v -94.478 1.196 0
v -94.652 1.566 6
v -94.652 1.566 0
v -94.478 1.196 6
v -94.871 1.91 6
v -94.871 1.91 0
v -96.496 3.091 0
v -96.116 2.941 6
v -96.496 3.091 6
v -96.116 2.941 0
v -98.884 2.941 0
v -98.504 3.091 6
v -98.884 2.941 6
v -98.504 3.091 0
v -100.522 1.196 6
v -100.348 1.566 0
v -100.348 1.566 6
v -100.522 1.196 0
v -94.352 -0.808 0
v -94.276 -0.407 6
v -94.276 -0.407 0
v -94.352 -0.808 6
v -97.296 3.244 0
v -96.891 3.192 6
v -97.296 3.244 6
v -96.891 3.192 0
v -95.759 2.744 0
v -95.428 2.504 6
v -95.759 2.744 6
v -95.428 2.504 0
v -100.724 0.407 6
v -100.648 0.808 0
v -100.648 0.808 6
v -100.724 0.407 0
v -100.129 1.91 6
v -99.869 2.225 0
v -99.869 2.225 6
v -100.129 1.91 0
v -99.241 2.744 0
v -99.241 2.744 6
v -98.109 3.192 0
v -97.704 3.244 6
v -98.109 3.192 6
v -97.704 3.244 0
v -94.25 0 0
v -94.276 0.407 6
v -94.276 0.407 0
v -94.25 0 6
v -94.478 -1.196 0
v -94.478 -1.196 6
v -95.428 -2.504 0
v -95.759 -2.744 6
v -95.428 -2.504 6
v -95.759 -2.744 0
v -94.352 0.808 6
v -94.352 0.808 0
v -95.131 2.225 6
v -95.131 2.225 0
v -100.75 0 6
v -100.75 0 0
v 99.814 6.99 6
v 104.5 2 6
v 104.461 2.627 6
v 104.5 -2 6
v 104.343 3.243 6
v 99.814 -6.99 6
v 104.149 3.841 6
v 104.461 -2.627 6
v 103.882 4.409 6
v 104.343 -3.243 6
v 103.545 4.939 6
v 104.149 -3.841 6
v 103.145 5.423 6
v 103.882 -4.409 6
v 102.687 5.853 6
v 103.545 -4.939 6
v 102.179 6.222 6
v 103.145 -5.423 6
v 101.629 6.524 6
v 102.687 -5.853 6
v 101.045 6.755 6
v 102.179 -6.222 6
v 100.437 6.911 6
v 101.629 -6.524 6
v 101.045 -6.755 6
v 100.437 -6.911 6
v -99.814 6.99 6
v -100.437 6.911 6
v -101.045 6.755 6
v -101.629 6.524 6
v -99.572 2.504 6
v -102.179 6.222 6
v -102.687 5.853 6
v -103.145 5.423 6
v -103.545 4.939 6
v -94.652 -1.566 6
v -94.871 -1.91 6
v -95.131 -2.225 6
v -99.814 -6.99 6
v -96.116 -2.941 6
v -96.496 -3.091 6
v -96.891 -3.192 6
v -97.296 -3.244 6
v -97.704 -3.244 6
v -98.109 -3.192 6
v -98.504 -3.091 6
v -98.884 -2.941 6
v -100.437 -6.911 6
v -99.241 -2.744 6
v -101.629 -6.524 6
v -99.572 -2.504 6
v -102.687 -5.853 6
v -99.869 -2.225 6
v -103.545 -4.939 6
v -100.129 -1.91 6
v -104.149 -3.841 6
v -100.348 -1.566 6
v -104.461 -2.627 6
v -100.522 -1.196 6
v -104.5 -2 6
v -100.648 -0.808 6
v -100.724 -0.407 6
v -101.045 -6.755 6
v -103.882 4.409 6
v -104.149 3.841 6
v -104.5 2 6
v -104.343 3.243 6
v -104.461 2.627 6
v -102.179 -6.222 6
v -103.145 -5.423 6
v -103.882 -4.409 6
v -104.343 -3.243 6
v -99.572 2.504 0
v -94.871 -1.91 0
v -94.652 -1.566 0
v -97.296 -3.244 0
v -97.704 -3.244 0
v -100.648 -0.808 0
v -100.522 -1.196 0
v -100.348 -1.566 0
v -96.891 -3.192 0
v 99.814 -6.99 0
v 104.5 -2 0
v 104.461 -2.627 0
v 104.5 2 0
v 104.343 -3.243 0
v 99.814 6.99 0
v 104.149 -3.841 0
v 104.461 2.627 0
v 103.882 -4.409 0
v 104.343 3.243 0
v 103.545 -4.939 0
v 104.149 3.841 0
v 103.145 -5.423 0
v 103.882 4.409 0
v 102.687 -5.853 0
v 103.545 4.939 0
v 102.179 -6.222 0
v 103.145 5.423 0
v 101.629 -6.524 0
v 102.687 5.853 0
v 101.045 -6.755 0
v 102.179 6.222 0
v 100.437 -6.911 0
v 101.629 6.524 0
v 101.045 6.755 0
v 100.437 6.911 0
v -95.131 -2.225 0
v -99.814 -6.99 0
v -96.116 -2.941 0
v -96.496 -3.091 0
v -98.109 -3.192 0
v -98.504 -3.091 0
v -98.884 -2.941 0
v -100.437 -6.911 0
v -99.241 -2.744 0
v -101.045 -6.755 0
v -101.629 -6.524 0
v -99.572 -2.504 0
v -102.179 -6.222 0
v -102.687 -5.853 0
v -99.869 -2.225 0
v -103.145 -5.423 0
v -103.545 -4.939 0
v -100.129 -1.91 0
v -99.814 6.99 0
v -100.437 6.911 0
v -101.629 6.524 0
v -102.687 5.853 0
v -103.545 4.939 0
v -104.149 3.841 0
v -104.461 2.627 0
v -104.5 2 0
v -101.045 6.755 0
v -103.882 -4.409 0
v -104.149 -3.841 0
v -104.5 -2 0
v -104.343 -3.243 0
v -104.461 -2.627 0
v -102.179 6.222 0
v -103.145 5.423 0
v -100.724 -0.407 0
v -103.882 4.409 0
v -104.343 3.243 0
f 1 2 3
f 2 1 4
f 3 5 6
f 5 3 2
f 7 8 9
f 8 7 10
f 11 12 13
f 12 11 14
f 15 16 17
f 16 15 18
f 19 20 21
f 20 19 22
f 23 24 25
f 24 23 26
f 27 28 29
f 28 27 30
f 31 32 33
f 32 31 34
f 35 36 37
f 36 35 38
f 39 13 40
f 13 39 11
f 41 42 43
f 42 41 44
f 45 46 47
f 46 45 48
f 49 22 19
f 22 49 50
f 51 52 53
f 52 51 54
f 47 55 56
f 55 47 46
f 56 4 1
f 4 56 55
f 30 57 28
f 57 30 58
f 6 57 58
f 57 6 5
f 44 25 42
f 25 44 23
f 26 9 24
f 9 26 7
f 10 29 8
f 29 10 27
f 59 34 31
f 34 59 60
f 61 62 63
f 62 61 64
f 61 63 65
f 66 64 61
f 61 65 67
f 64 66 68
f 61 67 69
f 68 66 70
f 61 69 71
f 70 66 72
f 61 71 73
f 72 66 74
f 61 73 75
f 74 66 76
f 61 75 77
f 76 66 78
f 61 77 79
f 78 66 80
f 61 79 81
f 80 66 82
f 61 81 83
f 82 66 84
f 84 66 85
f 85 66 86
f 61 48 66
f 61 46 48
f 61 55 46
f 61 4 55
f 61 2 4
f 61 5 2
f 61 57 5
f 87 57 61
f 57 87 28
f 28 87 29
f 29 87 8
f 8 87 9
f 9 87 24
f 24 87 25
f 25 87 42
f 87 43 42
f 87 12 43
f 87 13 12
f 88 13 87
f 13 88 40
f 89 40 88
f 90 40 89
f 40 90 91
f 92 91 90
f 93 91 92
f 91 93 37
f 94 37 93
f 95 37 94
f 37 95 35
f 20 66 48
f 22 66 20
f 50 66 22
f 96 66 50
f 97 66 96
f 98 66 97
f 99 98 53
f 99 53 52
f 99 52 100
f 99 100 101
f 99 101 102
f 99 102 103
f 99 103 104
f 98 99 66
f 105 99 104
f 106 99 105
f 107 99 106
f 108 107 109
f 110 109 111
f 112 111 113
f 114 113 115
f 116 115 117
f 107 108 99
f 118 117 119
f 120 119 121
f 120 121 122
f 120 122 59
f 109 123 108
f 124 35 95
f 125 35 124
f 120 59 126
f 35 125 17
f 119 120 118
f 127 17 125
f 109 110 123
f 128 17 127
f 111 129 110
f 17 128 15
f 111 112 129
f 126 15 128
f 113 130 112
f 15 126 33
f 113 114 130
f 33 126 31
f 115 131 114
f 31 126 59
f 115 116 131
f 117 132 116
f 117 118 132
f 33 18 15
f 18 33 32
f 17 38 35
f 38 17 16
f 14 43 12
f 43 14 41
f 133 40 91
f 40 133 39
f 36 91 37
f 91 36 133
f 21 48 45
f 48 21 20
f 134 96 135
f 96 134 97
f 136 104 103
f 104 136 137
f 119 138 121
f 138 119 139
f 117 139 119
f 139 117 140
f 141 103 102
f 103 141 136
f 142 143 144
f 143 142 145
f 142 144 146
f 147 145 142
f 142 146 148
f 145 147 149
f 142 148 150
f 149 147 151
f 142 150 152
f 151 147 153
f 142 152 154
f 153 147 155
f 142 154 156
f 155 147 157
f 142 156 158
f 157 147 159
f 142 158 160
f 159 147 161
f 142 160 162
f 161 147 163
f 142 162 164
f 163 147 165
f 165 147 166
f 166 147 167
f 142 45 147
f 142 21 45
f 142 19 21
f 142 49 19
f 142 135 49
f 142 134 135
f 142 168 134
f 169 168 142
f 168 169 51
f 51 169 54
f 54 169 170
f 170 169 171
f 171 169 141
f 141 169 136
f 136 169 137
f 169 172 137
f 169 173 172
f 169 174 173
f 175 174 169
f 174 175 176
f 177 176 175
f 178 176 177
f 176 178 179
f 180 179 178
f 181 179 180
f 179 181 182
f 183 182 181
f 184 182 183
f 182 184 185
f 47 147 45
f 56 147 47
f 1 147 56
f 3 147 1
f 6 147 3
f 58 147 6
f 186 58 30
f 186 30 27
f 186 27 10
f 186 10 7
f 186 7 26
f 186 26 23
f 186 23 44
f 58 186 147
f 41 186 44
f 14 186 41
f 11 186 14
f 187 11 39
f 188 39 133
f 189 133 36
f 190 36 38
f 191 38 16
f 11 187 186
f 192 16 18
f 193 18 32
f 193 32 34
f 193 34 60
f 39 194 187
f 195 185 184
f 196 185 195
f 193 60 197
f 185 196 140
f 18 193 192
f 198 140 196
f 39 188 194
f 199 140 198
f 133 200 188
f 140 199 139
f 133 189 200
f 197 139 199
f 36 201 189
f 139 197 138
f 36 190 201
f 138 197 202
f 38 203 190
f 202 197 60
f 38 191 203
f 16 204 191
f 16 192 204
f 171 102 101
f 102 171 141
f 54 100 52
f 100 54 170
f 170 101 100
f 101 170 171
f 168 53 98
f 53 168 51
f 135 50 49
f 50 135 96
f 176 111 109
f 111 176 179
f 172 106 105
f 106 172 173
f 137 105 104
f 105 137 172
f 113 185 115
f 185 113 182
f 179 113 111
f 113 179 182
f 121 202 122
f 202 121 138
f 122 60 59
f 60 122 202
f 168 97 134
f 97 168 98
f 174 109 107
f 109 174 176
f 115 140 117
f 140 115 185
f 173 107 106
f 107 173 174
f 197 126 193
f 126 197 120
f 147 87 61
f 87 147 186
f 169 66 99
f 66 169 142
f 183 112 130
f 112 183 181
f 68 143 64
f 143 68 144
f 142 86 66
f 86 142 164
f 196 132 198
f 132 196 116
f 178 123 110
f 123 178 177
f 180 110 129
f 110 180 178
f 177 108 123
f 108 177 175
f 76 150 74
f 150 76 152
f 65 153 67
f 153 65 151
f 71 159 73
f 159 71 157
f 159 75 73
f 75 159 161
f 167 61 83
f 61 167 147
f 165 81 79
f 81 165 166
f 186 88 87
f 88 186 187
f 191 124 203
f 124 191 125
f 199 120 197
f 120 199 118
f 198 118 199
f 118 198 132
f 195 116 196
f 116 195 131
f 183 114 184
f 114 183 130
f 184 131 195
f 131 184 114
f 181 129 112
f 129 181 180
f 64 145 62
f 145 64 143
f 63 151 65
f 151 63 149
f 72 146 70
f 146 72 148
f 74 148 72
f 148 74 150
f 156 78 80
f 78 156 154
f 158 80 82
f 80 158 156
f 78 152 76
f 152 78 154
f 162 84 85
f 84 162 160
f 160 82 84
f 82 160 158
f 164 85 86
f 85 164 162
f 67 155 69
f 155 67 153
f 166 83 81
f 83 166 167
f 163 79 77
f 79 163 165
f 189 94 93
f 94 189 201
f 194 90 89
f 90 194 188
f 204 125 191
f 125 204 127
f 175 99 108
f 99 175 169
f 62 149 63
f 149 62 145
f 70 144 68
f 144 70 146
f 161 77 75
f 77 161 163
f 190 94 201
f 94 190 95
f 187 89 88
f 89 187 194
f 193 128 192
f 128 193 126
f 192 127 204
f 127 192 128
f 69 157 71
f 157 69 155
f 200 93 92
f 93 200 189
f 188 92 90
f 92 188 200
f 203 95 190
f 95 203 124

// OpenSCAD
$fn = 50;


difference() {
	union() {
		hull() {
			translate(v = [-99.5000000000, 2.0000000000, 0]) {
				cylinder(h = 6, r = 5);
			}
			translate(v = [99.5000000000, 2.0000000000, 0]) {
				cylinder(h = 6, r = 5);
			}
			translate(v = [-99.5000000000, -2.0000000000, 0]) {
				cylinder(h = 6, r = 5);
			}
			translate(v = [99.5000000000, -2.0000000000, 0]) {
				cylinder(h = 6, r = 5);
			}
		}
	}
	union() {
		translate(v = [-97.5000000000, 0.0000000000, 0]) {
			cylinder(h = 6, r = 3.2500000000);
		}
		translate(v = [-97.5000000000, 0.0000000000, 0]) {
			cylinder(h = 6, r = 1.8000000000);
		}
		translate(v = [-97.5000000000, 0.0000000000, 0]) {
			cylinder(h = 6, r = 1.8000000000);
		}
		translate(v = [-97.5000000000, 0.0000000000, 0]) {
			cylinder(h = 6, r = 1.8000000000);
		}
	}
}
